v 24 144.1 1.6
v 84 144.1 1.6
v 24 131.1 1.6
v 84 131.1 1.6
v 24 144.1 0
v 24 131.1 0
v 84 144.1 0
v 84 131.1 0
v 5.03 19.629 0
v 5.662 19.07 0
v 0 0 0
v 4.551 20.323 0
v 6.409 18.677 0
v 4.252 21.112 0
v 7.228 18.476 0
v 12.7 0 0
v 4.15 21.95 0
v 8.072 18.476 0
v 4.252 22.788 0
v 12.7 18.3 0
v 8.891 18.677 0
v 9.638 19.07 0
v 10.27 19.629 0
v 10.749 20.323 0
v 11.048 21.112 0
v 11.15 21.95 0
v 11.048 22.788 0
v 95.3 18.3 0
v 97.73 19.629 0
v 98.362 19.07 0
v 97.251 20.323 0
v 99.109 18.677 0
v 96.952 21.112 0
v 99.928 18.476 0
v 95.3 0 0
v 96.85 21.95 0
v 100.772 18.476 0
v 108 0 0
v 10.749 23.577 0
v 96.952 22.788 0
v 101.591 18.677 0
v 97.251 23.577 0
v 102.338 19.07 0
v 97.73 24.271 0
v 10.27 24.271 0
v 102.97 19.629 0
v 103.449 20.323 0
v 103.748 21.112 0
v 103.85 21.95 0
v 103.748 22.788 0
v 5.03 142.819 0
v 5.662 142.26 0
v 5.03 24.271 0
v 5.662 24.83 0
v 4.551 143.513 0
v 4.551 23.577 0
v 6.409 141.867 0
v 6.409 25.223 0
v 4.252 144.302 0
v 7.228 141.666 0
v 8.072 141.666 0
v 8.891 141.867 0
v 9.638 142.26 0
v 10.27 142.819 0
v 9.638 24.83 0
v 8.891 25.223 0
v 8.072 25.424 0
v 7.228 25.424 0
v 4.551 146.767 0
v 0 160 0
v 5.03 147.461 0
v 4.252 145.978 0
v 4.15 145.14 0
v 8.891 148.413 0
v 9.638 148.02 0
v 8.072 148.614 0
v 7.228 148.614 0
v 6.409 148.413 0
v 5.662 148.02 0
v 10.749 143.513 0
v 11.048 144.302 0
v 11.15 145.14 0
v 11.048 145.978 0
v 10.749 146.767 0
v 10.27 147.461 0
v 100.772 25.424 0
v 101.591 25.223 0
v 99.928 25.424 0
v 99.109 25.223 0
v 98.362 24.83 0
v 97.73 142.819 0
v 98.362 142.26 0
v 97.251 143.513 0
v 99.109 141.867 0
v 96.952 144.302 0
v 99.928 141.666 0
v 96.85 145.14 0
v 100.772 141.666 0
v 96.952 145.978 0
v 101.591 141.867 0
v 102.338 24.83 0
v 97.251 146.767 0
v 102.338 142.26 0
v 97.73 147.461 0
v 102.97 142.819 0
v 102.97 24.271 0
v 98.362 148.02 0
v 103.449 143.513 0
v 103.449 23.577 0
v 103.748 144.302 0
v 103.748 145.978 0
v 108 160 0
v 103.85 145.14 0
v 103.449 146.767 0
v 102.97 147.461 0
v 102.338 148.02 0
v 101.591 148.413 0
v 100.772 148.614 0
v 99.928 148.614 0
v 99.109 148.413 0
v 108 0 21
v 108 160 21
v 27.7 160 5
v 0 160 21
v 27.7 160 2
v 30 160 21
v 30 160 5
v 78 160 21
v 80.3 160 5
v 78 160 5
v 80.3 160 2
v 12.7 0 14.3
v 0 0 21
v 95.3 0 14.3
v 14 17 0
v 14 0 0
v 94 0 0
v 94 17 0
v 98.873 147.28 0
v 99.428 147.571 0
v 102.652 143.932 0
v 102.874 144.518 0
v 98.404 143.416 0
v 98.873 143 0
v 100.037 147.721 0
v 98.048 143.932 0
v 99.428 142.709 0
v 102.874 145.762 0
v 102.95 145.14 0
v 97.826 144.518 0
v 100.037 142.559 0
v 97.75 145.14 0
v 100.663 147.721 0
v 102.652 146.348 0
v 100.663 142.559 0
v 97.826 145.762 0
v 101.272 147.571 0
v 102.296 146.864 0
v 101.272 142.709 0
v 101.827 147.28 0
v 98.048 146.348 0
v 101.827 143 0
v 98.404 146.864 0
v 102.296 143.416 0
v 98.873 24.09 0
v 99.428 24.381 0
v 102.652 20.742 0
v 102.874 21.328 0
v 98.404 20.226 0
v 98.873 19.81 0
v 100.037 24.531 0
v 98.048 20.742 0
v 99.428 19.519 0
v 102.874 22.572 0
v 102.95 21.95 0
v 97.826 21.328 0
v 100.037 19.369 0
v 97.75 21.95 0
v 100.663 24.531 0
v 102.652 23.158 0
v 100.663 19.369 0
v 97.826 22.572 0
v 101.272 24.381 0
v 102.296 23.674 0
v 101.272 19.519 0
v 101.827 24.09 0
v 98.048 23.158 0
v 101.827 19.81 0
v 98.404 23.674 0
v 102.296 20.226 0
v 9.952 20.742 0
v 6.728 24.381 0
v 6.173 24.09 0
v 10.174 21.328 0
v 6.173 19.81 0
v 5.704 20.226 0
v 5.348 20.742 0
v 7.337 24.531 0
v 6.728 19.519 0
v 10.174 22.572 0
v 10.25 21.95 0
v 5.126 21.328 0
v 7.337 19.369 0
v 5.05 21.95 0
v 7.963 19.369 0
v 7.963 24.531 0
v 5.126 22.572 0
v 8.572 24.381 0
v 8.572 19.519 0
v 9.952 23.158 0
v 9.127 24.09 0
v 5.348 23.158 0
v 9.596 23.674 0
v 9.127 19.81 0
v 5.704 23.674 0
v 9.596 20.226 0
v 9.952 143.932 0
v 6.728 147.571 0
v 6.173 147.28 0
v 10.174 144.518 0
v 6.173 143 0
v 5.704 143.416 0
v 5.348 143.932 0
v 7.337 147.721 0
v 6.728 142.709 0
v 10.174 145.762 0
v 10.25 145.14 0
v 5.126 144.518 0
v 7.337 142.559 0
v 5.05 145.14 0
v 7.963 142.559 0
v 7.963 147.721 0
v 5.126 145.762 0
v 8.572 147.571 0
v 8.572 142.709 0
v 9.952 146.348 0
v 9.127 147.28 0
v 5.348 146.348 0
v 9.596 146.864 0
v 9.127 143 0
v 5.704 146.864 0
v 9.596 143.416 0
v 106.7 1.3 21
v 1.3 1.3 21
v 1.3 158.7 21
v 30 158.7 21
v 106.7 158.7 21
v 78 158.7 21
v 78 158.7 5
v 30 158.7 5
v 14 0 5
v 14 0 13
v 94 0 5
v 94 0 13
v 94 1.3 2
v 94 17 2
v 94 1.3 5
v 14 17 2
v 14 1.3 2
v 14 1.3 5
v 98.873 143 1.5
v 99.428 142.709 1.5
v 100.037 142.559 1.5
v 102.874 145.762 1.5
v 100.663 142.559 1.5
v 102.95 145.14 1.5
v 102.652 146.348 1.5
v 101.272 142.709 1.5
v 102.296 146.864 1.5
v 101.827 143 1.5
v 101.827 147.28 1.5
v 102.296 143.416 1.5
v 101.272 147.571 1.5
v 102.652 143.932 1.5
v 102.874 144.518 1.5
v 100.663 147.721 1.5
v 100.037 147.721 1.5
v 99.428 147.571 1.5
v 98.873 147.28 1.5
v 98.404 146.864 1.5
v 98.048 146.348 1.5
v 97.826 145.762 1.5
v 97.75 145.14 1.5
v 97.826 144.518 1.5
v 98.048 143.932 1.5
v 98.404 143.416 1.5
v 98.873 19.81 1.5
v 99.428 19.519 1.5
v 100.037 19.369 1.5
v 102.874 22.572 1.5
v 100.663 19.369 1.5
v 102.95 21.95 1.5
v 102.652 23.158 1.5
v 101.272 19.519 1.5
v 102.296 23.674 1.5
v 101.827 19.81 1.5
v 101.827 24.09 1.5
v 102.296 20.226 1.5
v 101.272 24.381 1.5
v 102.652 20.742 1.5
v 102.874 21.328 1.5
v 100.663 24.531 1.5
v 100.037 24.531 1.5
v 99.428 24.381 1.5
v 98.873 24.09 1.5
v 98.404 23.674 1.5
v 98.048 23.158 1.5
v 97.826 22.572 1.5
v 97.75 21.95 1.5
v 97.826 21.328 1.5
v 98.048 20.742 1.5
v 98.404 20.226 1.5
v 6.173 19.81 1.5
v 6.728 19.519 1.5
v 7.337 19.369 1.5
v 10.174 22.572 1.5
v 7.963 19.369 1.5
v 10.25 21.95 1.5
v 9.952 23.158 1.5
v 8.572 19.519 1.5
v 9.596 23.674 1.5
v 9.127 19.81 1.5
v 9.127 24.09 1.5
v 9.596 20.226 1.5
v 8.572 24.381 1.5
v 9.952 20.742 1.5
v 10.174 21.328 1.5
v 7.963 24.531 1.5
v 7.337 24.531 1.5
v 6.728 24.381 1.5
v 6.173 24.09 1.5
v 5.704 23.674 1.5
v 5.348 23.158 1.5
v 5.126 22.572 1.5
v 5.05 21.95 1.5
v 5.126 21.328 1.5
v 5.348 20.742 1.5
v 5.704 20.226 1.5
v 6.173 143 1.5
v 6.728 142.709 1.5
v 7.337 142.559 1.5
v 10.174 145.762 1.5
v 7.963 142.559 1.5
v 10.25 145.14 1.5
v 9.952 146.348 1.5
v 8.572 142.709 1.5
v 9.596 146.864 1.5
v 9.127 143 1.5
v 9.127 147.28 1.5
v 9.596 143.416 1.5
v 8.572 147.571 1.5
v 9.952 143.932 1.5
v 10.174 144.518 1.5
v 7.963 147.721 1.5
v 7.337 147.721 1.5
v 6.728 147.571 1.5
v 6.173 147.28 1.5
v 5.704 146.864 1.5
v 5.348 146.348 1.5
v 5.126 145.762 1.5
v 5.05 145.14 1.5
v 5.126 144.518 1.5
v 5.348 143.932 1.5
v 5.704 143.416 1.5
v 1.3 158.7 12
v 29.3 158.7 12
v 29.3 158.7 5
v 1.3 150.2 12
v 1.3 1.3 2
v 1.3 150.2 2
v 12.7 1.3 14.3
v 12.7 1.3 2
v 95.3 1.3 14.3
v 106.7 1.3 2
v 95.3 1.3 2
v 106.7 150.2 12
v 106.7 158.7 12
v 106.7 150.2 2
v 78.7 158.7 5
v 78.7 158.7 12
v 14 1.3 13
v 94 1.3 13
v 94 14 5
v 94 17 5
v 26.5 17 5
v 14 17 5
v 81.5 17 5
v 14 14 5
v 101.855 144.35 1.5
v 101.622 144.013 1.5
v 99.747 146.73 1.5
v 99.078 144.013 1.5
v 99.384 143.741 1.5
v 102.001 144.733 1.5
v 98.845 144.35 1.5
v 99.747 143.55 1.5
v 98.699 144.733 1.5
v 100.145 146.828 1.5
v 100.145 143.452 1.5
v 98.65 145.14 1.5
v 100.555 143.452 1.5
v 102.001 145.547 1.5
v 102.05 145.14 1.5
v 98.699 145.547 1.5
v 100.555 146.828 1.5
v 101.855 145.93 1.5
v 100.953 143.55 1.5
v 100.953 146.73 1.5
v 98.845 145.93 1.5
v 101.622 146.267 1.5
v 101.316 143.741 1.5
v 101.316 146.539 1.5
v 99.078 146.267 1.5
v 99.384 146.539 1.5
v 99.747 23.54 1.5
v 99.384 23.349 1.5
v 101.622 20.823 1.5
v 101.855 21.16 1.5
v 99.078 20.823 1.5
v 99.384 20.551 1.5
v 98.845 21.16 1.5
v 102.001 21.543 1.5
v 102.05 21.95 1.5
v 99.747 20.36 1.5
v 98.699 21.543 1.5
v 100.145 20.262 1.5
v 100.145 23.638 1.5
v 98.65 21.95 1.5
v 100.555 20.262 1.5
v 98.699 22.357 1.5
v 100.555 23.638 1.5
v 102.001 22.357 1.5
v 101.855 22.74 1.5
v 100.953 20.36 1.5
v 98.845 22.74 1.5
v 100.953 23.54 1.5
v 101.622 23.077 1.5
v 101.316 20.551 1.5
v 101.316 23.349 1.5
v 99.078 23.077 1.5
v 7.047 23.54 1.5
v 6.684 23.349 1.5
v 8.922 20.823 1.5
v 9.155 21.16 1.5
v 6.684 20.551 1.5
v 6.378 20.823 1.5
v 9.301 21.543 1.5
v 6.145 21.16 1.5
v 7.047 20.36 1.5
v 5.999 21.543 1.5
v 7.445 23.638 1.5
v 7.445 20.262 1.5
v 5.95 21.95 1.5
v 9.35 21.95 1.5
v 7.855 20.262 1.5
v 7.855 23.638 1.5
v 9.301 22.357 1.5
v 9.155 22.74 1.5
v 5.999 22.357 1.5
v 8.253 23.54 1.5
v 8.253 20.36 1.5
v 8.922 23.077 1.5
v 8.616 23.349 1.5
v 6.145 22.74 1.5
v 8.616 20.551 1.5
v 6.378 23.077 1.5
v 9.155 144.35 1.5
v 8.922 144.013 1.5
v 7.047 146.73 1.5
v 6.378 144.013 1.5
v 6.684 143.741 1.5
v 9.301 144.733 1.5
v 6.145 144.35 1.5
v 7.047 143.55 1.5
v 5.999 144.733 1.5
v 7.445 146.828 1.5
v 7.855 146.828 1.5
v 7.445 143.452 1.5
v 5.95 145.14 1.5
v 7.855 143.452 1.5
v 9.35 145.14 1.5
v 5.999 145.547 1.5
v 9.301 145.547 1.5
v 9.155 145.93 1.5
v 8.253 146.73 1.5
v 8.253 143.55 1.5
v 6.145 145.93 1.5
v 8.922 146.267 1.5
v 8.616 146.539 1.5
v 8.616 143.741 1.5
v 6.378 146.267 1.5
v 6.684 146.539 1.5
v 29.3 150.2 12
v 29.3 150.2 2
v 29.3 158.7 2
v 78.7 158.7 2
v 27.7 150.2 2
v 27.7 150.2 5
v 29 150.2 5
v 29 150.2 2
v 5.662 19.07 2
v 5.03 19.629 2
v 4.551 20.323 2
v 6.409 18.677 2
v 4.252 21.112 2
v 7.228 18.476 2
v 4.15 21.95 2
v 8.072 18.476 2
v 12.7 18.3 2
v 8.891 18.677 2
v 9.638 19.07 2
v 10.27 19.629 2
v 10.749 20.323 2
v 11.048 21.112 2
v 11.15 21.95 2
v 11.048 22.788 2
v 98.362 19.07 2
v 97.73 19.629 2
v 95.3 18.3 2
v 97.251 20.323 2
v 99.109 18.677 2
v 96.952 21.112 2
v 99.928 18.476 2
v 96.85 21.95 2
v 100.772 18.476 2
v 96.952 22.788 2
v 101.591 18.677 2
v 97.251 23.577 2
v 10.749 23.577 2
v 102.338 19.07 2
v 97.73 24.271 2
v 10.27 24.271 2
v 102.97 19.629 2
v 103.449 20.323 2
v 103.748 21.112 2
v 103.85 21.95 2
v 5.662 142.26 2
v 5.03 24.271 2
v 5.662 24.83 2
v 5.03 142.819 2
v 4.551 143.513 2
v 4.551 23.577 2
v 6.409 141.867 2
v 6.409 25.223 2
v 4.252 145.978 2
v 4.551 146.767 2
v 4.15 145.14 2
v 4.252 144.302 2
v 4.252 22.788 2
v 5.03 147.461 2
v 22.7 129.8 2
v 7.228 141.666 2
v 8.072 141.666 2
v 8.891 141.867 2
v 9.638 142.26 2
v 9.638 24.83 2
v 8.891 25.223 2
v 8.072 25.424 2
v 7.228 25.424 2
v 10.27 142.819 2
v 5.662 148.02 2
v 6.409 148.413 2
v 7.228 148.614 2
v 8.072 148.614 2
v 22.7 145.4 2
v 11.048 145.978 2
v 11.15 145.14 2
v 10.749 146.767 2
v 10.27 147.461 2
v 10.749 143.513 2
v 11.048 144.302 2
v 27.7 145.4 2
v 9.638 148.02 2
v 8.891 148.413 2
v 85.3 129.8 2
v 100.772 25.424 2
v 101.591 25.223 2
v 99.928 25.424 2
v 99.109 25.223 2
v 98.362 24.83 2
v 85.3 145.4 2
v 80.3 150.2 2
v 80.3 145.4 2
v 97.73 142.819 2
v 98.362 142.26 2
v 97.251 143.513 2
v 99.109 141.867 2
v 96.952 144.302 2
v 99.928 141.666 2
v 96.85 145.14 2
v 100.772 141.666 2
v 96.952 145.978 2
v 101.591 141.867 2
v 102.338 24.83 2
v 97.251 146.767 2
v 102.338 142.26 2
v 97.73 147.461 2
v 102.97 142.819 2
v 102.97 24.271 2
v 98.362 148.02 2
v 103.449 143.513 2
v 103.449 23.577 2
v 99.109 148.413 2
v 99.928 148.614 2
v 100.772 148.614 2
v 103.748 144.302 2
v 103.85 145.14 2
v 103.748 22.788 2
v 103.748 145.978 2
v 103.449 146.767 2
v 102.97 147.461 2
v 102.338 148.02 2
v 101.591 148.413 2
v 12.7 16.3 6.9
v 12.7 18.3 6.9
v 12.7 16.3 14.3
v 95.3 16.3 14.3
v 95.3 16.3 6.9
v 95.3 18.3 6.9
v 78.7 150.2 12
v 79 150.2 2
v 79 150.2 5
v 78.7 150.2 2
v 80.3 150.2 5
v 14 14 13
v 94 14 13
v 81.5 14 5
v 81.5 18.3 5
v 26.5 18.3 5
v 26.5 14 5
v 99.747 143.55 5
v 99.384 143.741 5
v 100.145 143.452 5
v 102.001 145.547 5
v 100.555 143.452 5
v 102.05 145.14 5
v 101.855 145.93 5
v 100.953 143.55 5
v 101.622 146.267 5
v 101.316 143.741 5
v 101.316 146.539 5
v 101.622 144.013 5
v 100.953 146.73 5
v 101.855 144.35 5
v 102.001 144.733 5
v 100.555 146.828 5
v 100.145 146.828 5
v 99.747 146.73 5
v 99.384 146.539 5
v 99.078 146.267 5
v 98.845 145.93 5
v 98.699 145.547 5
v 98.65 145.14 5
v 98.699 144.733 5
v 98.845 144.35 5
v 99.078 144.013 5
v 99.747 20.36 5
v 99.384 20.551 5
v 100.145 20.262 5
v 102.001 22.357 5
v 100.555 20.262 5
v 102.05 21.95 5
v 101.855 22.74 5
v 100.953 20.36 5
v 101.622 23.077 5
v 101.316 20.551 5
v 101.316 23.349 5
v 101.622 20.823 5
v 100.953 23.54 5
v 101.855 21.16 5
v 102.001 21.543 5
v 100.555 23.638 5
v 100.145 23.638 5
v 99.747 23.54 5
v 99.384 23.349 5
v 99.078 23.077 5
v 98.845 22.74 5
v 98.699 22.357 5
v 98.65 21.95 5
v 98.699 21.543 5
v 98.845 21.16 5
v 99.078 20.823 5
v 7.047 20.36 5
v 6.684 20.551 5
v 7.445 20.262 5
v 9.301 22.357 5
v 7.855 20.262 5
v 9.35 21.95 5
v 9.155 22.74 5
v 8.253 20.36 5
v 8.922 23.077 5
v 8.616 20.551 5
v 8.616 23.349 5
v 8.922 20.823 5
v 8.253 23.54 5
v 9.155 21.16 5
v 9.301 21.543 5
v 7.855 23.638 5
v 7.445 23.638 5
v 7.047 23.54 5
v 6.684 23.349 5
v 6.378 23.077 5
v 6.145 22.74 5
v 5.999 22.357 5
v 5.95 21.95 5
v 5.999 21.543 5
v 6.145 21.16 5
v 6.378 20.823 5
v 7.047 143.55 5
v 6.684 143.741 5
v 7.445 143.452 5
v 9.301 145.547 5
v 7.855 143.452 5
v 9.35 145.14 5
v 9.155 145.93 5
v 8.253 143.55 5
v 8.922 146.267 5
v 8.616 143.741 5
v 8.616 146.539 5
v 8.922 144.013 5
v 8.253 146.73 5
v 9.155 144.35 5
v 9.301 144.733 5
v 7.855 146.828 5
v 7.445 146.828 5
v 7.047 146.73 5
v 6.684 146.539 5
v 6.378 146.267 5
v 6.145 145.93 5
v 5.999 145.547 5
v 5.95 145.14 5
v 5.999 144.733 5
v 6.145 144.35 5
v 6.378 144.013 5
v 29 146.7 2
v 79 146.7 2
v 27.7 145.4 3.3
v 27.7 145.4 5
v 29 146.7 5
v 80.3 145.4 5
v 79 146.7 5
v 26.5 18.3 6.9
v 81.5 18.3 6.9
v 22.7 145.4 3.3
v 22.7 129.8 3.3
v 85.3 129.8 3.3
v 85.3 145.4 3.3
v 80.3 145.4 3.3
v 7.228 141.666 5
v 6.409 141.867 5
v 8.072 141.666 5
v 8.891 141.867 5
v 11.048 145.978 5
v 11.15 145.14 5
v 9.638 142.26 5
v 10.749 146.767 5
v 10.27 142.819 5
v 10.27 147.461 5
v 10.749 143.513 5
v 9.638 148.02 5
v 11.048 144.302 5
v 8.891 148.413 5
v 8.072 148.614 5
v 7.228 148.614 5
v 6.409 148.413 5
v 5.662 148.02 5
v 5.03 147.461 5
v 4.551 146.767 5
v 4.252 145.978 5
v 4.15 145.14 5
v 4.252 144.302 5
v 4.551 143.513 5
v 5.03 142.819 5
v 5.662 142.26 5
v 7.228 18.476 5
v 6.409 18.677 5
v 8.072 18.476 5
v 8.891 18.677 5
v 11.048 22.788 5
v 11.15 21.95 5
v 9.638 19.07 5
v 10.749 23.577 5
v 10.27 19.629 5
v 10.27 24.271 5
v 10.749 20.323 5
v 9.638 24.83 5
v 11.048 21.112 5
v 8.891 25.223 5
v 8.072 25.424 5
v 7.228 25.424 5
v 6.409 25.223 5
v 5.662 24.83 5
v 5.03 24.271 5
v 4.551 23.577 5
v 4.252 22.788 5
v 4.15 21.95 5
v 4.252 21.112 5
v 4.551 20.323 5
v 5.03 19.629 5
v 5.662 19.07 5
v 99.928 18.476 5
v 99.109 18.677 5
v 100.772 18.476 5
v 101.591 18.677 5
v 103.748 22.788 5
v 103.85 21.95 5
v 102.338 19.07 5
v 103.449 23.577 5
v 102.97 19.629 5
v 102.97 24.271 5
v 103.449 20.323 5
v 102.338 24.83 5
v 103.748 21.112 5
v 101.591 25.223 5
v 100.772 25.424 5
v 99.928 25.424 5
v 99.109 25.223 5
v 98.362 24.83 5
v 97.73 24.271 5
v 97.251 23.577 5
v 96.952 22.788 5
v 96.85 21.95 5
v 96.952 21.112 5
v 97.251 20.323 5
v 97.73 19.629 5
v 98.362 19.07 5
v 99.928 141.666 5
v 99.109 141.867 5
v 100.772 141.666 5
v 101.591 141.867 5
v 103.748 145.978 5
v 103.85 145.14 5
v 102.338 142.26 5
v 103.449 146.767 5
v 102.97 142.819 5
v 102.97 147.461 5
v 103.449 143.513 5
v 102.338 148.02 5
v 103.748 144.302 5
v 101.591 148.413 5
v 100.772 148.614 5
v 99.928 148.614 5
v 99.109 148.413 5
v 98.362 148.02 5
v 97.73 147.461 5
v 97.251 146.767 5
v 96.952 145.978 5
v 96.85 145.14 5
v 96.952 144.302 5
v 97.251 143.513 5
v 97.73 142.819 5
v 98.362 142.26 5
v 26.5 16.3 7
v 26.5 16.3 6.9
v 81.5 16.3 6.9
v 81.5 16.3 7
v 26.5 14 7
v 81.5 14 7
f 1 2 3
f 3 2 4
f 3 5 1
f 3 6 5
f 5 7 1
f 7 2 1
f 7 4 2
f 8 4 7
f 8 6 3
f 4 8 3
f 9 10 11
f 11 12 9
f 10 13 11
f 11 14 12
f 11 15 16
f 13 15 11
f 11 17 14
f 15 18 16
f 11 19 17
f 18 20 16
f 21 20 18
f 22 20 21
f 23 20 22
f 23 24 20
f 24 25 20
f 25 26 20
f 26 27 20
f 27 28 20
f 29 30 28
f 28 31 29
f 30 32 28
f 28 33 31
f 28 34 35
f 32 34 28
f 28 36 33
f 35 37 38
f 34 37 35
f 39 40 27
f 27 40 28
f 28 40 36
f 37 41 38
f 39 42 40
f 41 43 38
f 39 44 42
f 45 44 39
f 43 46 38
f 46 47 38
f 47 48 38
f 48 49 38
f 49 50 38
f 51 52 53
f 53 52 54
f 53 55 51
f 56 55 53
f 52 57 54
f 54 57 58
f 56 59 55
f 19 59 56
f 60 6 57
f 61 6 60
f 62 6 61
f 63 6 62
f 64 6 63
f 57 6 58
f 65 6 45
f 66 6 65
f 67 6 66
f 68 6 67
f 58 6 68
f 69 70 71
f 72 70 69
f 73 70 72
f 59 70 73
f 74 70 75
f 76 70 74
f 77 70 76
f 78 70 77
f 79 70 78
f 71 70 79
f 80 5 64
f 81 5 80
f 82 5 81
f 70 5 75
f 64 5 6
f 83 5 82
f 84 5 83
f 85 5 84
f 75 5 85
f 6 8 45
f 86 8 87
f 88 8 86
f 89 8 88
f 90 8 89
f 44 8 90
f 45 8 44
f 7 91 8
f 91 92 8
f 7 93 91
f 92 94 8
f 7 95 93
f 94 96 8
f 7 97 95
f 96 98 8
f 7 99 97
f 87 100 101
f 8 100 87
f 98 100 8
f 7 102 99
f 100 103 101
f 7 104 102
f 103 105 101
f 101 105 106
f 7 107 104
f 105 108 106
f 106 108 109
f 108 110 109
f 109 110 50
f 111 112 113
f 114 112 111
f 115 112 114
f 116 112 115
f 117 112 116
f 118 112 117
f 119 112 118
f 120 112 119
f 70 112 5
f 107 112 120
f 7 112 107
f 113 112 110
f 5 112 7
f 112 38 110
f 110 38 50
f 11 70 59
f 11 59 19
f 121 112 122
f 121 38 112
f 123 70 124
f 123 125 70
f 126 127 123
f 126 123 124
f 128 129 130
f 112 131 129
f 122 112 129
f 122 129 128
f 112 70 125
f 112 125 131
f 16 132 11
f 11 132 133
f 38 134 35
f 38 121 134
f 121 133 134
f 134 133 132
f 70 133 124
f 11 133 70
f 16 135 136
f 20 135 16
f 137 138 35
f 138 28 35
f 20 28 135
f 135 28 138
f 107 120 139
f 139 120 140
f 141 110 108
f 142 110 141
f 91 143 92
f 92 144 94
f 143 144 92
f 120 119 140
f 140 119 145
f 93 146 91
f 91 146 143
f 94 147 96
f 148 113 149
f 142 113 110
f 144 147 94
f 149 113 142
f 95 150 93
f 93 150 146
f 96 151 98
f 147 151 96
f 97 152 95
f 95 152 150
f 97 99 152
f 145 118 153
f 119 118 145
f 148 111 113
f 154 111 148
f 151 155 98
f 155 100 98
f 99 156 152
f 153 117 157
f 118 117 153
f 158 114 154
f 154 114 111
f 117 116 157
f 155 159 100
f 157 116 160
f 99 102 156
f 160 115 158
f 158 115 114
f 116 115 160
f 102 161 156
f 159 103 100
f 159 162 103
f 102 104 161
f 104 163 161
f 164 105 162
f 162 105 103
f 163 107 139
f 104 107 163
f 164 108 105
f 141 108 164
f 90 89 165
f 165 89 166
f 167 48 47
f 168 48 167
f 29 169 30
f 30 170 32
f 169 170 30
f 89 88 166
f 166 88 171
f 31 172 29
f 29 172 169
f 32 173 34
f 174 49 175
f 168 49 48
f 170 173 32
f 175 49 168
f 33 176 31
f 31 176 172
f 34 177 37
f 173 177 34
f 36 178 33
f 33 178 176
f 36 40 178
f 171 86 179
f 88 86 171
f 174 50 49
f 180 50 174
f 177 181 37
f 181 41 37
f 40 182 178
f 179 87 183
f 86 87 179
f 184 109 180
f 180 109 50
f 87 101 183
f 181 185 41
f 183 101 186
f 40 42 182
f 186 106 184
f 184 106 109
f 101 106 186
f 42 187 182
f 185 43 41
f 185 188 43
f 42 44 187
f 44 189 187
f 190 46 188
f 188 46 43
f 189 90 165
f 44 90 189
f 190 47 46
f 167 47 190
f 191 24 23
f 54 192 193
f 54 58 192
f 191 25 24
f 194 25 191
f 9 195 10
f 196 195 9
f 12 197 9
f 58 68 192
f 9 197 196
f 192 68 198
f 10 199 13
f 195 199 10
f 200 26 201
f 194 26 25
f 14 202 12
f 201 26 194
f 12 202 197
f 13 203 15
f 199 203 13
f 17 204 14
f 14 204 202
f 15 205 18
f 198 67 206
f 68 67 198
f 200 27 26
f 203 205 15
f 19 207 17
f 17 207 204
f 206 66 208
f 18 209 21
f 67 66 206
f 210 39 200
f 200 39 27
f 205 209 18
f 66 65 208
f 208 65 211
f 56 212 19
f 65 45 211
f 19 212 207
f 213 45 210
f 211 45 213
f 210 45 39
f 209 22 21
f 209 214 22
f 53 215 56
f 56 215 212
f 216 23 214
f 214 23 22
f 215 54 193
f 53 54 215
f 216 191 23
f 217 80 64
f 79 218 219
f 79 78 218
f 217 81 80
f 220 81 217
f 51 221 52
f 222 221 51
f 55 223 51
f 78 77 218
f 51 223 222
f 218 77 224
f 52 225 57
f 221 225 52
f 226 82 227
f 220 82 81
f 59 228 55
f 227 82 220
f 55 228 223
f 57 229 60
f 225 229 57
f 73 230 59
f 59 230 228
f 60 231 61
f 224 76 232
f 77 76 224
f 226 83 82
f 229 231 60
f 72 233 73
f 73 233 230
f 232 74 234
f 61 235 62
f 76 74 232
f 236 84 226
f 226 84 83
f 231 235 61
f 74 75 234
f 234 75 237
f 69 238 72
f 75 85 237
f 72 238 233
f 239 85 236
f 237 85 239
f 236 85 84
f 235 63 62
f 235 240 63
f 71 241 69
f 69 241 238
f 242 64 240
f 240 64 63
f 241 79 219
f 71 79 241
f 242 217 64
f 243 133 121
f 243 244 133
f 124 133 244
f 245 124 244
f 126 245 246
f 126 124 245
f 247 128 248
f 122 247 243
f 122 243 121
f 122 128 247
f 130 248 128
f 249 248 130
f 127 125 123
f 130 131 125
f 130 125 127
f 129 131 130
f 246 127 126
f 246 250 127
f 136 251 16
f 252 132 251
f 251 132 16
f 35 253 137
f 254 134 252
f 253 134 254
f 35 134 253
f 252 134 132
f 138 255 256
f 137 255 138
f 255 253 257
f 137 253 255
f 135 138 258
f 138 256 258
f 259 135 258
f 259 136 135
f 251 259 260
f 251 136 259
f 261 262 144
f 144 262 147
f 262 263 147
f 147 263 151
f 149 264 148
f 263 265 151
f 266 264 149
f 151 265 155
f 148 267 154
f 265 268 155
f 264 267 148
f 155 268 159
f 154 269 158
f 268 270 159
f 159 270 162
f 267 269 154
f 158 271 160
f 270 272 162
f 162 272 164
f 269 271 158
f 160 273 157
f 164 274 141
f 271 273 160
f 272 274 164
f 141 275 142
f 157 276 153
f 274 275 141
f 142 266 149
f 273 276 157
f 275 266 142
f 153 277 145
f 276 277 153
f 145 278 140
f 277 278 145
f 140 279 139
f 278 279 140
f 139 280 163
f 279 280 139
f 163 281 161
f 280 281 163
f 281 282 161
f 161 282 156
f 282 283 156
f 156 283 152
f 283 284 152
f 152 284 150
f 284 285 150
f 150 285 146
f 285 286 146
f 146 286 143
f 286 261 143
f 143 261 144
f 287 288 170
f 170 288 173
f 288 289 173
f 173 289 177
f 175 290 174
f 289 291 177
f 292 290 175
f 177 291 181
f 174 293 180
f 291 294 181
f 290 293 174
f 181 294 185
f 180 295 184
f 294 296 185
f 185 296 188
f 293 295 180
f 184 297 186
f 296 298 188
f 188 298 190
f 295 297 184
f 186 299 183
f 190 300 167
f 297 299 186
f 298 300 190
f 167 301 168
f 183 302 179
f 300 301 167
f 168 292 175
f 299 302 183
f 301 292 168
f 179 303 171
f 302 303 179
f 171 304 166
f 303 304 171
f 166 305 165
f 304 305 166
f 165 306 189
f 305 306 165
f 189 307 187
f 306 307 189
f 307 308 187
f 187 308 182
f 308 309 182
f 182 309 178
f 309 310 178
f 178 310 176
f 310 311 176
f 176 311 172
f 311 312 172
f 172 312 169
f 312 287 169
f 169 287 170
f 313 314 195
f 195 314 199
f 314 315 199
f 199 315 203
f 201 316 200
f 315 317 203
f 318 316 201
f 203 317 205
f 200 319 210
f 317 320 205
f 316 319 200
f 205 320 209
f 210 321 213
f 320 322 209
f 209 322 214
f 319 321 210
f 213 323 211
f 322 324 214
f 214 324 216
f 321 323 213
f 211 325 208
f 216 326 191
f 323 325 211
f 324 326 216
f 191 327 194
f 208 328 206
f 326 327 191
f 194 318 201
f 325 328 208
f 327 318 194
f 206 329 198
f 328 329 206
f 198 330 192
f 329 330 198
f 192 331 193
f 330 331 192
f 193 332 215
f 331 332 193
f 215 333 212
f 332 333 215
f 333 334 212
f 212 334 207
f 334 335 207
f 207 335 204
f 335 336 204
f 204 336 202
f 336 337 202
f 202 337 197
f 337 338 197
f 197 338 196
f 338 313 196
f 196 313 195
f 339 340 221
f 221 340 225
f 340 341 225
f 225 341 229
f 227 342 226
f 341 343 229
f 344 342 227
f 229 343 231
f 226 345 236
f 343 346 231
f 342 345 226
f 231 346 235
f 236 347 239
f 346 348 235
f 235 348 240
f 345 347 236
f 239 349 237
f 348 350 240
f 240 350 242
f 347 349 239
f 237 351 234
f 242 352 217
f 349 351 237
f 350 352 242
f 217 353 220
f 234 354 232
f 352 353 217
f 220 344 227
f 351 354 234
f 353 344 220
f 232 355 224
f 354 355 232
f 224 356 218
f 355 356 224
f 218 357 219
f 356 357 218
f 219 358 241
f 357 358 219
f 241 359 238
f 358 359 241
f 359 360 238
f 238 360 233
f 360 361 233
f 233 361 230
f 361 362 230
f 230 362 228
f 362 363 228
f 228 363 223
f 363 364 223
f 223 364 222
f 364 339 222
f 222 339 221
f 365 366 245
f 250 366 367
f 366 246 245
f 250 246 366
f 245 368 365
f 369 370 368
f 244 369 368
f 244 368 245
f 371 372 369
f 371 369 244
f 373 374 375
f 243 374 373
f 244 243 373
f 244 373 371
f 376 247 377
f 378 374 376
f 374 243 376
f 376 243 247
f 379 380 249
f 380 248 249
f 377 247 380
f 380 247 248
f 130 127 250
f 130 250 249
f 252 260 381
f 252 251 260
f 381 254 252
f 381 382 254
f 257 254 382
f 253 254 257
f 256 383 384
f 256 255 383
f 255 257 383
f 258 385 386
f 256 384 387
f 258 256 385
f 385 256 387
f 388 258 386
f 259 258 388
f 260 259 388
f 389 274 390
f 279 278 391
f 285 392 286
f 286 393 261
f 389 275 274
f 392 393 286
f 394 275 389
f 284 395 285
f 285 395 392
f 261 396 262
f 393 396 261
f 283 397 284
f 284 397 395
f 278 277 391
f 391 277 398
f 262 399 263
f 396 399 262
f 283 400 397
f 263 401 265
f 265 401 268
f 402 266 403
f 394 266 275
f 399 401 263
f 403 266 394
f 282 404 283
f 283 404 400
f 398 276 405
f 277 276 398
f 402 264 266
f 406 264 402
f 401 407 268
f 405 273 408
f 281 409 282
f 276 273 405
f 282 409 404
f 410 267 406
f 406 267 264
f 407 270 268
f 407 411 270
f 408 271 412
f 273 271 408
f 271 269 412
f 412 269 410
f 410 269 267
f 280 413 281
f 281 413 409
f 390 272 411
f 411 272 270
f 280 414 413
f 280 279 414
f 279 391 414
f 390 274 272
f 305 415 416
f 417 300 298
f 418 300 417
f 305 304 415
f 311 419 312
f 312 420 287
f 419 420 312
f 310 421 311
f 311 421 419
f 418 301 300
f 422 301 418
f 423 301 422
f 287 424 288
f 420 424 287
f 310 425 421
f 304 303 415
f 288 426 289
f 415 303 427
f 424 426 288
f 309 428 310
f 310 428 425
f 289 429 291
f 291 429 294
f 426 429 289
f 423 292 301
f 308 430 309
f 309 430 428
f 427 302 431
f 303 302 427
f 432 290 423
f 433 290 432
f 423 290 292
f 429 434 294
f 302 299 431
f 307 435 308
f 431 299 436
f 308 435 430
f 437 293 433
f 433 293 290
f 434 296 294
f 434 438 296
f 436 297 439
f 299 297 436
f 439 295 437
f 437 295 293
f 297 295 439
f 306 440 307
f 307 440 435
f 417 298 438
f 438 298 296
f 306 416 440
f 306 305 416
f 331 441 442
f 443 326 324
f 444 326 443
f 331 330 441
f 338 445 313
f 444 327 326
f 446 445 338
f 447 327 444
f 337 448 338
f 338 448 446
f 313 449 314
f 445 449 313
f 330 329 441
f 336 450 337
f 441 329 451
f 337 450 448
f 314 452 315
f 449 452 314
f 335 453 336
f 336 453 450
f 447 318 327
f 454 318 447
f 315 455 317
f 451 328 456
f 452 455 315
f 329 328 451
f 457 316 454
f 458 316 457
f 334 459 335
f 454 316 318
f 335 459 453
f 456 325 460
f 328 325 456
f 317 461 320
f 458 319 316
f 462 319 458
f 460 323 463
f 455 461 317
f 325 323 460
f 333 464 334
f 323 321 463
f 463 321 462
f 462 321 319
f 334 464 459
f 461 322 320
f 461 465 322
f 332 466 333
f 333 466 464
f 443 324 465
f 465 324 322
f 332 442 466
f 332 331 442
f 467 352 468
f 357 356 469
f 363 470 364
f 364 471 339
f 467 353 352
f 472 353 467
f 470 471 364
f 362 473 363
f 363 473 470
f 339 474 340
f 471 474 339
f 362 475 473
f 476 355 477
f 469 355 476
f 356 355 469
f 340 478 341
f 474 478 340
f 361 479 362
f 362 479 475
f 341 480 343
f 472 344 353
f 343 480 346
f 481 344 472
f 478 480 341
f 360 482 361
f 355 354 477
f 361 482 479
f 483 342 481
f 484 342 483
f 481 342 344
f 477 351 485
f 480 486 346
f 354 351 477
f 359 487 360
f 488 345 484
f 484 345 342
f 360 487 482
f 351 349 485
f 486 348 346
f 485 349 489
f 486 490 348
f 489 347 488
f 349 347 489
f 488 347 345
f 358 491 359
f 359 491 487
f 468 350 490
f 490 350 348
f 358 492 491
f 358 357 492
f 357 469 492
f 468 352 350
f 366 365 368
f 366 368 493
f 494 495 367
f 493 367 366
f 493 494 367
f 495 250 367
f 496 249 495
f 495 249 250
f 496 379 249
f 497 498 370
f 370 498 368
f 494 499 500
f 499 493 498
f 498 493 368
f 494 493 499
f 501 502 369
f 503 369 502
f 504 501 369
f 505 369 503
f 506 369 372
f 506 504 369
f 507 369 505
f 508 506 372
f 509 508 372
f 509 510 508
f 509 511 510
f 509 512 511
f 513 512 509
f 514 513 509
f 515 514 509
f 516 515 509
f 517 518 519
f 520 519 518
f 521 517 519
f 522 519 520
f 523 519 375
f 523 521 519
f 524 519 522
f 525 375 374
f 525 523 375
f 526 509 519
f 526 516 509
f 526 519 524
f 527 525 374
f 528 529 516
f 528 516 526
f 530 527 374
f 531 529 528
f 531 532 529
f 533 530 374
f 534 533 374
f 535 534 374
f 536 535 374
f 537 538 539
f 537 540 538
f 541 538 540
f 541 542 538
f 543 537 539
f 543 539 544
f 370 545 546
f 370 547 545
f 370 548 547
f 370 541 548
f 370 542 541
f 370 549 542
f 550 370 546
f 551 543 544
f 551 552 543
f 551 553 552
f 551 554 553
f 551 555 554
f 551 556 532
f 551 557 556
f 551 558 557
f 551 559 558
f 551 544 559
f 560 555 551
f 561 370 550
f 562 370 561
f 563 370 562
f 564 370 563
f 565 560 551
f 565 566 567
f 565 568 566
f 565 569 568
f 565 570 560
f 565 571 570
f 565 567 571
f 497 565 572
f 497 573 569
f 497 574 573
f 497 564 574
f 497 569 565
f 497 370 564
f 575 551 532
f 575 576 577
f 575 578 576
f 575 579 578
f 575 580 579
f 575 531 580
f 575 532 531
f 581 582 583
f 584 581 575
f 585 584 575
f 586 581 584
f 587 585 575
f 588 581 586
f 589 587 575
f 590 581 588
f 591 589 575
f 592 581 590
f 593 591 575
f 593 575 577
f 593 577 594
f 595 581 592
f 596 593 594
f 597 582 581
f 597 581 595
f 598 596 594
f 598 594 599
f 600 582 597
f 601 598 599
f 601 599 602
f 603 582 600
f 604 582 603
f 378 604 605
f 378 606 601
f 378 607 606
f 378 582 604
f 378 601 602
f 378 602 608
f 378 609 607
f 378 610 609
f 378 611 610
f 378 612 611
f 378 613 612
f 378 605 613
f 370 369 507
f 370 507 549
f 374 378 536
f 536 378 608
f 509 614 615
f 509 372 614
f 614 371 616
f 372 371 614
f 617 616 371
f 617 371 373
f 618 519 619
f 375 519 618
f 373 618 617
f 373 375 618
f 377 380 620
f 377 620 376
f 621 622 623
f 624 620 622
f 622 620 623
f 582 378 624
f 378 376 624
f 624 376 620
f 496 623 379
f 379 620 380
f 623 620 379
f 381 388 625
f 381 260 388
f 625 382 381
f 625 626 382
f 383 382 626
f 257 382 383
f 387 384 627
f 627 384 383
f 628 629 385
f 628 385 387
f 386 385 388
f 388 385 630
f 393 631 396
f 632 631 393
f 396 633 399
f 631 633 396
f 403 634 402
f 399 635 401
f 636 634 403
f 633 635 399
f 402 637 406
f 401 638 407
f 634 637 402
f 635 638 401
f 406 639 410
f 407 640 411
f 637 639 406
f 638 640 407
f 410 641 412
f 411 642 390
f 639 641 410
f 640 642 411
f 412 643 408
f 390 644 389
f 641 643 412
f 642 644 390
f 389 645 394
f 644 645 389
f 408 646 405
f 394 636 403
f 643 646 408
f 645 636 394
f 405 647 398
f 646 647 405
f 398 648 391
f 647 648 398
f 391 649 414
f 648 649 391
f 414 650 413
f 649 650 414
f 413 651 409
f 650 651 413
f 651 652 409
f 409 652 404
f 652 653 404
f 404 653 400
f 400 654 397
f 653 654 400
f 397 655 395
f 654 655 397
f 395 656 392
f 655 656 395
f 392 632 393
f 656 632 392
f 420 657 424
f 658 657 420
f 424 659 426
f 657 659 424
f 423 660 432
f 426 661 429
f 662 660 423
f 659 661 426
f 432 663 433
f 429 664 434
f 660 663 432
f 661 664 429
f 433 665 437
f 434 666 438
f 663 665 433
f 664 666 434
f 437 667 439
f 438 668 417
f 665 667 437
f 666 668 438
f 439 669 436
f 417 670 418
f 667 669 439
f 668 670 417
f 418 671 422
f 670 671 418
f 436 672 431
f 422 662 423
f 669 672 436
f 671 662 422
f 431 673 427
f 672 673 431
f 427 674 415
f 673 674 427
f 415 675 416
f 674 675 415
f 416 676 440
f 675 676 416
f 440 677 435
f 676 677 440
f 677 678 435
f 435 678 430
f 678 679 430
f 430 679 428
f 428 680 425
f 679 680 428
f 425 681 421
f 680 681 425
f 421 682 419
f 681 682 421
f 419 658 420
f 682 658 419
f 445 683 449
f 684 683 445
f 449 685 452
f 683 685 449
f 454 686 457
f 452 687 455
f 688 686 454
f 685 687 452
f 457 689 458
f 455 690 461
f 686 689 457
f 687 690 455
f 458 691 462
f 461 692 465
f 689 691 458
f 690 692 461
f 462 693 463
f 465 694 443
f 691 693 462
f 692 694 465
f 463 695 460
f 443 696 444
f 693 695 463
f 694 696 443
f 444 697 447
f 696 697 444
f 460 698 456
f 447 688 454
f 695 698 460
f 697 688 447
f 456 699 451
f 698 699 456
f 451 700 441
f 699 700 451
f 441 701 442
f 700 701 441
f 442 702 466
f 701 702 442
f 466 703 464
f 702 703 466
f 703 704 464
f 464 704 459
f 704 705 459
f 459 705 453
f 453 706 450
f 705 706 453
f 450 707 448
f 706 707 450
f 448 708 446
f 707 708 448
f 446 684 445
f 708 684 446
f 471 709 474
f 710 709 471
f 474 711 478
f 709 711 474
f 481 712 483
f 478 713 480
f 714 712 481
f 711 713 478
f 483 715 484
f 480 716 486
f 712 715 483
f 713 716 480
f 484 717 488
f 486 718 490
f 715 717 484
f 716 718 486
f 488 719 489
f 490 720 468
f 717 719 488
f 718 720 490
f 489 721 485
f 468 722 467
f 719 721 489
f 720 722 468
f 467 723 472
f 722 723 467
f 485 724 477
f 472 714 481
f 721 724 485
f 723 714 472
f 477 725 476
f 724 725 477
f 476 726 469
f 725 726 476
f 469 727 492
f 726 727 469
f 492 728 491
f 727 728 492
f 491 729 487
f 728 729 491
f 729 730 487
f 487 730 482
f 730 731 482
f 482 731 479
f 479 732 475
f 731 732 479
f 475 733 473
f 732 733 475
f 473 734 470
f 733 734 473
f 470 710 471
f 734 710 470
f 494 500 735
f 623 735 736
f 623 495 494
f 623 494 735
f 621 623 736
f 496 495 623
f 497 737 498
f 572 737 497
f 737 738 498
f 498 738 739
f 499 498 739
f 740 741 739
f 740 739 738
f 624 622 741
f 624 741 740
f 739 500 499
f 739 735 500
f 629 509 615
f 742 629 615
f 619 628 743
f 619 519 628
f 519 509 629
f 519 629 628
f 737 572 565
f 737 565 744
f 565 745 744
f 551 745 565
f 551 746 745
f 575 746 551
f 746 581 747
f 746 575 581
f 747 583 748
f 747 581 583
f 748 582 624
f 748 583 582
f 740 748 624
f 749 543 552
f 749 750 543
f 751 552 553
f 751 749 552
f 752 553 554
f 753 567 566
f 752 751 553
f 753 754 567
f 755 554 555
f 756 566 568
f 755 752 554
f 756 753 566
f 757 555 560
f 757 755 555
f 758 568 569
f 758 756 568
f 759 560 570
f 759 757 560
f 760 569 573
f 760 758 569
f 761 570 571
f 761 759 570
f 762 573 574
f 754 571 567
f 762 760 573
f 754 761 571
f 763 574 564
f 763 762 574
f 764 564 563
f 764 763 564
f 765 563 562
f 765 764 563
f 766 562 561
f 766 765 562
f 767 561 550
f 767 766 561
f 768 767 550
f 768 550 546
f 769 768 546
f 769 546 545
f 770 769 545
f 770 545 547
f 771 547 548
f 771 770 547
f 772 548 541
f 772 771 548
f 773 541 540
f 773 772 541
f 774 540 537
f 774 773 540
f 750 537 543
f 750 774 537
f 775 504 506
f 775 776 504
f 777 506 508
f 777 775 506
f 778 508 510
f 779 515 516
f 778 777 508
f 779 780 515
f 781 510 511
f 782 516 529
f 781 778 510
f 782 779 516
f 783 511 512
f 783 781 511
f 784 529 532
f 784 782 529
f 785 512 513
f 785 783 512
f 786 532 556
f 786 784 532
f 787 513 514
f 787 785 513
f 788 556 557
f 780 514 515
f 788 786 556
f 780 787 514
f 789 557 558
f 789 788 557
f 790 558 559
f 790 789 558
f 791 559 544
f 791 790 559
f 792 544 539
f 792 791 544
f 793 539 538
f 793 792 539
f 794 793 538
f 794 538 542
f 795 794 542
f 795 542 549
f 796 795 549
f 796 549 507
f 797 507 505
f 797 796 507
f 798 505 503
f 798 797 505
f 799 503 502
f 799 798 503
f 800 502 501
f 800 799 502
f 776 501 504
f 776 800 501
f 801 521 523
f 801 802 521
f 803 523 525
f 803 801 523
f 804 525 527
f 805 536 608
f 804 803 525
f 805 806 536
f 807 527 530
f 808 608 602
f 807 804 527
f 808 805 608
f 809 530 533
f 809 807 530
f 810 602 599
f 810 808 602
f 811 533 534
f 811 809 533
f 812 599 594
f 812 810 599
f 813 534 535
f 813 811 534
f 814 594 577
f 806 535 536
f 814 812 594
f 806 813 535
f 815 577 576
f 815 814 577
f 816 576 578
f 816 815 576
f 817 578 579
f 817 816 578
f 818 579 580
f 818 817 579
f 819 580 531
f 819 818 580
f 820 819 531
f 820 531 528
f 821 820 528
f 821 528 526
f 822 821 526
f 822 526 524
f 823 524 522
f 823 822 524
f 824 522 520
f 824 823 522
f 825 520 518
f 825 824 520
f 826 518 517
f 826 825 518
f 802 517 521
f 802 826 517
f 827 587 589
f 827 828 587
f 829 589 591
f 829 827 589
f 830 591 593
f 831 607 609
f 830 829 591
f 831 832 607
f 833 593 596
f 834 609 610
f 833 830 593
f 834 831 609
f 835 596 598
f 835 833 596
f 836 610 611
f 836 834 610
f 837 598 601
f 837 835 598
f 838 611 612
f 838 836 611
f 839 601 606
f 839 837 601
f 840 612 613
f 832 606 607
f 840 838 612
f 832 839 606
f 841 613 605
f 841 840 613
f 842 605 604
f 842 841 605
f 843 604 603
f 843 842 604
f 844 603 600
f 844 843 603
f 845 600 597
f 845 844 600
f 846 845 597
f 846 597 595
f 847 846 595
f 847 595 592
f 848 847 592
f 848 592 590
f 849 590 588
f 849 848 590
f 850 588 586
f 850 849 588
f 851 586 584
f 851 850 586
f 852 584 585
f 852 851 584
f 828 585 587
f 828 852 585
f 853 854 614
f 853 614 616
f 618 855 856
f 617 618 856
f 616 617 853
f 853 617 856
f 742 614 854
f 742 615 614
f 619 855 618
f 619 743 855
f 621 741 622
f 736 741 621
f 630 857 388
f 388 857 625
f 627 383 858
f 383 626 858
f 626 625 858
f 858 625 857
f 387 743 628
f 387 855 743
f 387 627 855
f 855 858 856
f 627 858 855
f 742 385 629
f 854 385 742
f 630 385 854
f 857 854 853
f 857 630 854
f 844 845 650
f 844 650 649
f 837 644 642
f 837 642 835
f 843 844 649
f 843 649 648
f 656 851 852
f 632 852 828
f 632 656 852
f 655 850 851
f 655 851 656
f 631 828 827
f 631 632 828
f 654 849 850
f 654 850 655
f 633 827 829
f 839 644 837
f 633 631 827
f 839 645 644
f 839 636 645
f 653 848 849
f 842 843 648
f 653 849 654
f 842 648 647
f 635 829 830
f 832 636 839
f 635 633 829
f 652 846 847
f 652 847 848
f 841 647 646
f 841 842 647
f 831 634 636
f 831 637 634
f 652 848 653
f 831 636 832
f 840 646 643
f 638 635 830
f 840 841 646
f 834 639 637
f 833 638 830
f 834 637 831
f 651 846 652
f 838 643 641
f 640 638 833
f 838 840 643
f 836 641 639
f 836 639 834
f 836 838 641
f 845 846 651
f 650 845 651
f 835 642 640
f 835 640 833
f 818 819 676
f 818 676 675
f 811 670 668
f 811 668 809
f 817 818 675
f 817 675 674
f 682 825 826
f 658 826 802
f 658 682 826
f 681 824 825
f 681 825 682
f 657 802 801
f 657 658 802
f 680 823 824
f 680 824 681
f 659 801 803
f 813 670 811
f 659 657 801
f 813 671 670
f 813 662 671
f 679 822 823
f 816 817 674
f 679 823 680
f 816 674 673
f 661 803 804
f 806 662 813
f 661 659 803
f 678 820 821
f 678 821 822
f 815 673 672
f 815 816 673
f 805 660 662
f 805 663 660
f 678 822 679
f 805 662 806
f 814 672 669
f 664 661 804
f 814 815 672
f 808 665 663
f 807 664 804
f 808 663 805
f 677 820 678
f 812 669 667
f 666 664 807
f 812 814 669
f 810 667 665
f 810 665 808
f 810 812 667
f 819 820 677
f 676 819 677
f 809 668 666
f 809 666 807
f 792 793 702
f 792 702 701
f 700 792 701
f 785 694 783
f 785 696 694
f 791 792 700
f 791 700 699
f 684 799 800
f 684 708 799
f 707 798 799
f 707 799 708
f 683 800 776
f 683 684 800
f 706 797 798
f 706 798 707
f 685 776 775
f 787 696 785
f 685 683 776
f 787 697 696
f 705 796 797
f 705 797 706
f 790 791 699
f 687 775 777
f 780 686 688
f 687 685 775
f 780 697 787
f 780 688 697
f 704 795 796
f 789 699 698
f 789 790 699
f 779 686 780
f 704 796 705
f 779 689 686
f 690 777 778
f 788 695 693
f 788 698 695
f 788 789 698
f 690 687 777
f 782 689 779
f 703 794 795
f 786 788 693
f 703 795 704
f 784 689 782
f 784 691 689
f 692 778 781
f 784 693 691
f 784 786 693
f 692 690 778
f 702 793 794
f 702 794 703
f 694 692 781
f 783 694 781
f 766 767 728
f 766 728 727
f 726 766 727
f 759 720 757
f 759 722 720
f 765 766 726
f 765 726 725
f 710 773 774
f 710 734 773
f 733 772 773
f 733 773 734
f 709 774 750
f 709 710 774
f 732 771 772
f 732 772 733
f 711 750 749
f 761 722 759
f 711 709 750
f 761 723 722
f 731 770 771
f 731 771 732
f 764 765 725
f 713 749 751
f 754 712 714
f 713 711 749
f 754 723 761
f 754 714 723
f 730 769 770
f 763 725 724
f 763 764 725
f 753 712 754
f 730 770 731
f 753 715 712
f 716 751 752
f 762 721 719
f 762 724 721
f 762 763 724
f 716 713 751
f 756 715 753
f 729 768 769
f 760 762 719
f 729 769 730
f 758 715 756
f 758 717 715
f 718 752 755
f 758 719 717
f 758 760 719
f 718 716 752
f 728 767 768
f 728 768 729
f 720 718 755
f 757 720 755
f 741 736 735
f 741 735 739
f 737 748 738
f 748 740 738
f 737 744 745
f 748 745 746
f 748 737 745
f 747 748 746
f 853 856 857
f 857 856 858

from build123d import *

# Parameters (mm, degrees)
BOX015_W          = 28
BOX015_H          = 8.5
BOX015_DEPTH      = 10
BOX016_W          = 28
BOX016_H          = 8.5
BOX016_DEPTH      = 10
BOX014_W          = 50
BOX014_H          = 12
BOX014_DEPTH      = 3
BOX013_W          = 52.6
BOX013_H          = 14.6
BOX013_DEPTH      = 3
CYLINDER006_R     = 2.6
CYLINDER006_DEPTH = 1.5
CYLINDER005_R     = 1.7
CYLINDER005_DEPTH = 5
CYLINDER_R        = 3.5
CYLINDER_DEPTH    = 5
CYLINDER001_R     = 3.5
CYLINDER001_DEPTH = 5
CYLINDER002_R     = 3.5
CYLINDER002_DEPTH = 5
CYLINDER003_R     = 3.5
CYLINDER003_DEPTH = 5
BOX012_W          = 48
BOX012_H          = 1.3
BOX012_DEPTH      = 16
BOX008_W          = 60
BOX008_H          = 13
BOX008_DEPTH      = 1.6
BOX002_W          = 80
BOX002_H          = 17
BOX002_DEPTH      = 13
BOX001_W          = 105.4
BOX001_H          = 157.4
BOX001_DEPTH      = 19
BOX_W             = 108
BOX_H             = 160
BOX_DEPTH         = 21
BOX007_W          = 55
BOX007_H          = 4.5
BOX007_DEPTH      = 2
BOX006_W          = 82.6
BOX006_H          = 2
BOX006_DEPTH      = 7.4
BOX005_W          = 80
BOX005_H          = 14
BOX005_DEPTH      = 8
BOX004_W          = 80
BOX004_H          = 17
BOX004_DEPTH      = 5
BOX003_W          = 82.6
BOX003_H          = 18.3
BOX003_DEPTH      = 14.3
BOX009_W          = 62.6
BOX009_H          = 15.6
BOX009_DEPTH      = 1.7


with BuildPart() as board_pusher_left:
    # Box015 → Box015 (new body)
    with BuildSketch(Plane(origin=(1.3, 150.2, 2), x_dir=(1, 0, 0), z_dir=(0, 0, 1))):
        with Locations((14, 4.25)):
            Rectangle(BOX015_W, BOX015_H)
    extrude(amount=BOX015_DEPTH)


with BuildPart() as board_pusher_right:
    # Box016 → Box016 (new body)
    with BuildSketch(Plane(origin=(78.7, 150.2, 2), x_dir=(1, 0, 0), z_dir=(0, 0, 1))):
        with Locations((14, 4.25)):
            Rectangle(BOX016_W, BOX016_H)
    extrude(amount=BOX016_DEPTH)


with BuildPart() as board_support_inner:
    # Box014 → Box014 (new body)
    with BuildSketch(Plane(origin=(29, 146.7, 2), x_dir=(1, 0, 0), z_dir=(0, 0, 1))):
        with Locations((25, 6)):
            Rectangle(BOX014_W, BOX014_H)
    extrude(amount=BOX014_DEPTH)


with BuildPart() as board_support:
    # Box013 → Box013 (new body)
    with BuildSketch(Plane(origin=(27.7, 145.4, 2), x_dir=(1, 0, 0), z_dir=(0, 0, 1))):
        with Locations((26.3, 7.3)):
            Rectangle(BOX013_W, BOX013_H)
    extrude(amount=BOX013_DEPTH)

    # Cut008: cut Board support inner
    add(board_support_inner.part, mode=Mode.SUBTRACT)


with BuildPart() as bottom_hole:
    # Cylinder006 → Cylinder006 (new body)
    with BuildSketch(Plane(origin=(7.65, 145.14, 0), x_dir=(1, 0, 0), z_dir=(0, 0, 1))):
        Circle(CYLINDER006_R)
    extrude(amount=CYLINDER006_DEPTH)


with BuildPart() as hole1:
    # Cylinder005 → Cylinder005 (new body)
    with BuildSketch(Plane(origin=(7.65, 145.14, 0), x_dir=(1, 0, 0), z_dir=(0, 0, 1))):
        Circle(CYLINDER005_R)
    extrude(amount=CYLINDER005_DEPTH)

    # Fusion003: union Bottom hole
    add(bottom_hole.part)


with BuildPart() as hole2:
    # Clone base: copy of Hole1
    add(hole1.part)


with BuildPart() as hole2_1:
    # Clone placement: moved
    add(hole2.part.moved(Location((92.7, 0, 0))))


with BuildPart() as hole3:
    # Clone001 base: copy of Hole2
    add(hole2_1.part)


with BuildPart() as hole3_1:
    # Clone001 placement: moved
    add(hole3.part.moved(Location((-92.7, -123.19, 0))))


with BuildPart() as hole4:
    # Clone002 base: copy of Hole3
    add(hole3_1.part)


with BuildPart() as hole4_1:
    # Clone002 placement: moved
    add(hole4.part.moved(Location((92.7, 0, 0))))


with BuildPart() as holes:
    # Fusion004 base: copy of Hole1
    add(hole1.part)

    # Fusion004: union Hole4, Hole3, Hole2
    add(hole4_1.part)
    add(hole3_1.part)
    add(hole2_1.part)


with BuildPart() as cylinder:
    # Cylinder → Cylinder (new body)
    with BuildSketch(Plane(origin=(7.65, 145.14, 0), x_dir=(1, 0, 0), z_dir=(0, 0, 1))):
        Circle(CYLINDER_R)
    extrude(amount=CYLINDER_DEPTH)


with BuildPart() as cylinder001:
    # Cylinder001 → Cylinder001 (new body)
    with BuildSketch(Plane(origin=(100.35, 145.14, 0), x_dir=(1, 0, 0), z_dir=(0, 0, 1))):
        Circle(CYLINDER001_R)
    extrude(amount=CYLINDER001_DEPTH)


with BuildPart() as cylinder002:
    # Cylinder002 → Cylinder002 (new body)
    with BuildSketch(Plane(origin=(7.65, 21.95, 0), x_dir=(1, 0, 0), z_dir=(0, 0, 1))):
        Circle(CYLINDER002_R)
    extrude(amount=CYLINDER002_DEPTH)


with BuildPart() as cylinder003:
    # Cylinder003 → Cylinder003 (new body)
    with BuildSketch(Plane(origin=(100.35, 21.95, 0), x_dir=(1, 0, 0), z_dir=(0, 0, 1))):
        Circle(CYLINDER003_R)
    extrude(amount=CYLINDER003_DEPTH)


with BuildPart() as sdcard_cutout:
    # Box012 → Box012 (new body)
    with BuildSketch(Plane(origin=(30, 158.7, 5), x_dir=(1, 0, 0), z_dir=(0, 0, 1))):
        with Locations((24, 0.65)):
            Rectangle(BOX012_W, BOX012_H)
    extrude(amount=BOX012_DEPTH)


with BuildPart() as bottom_cutout:
    # Box008 → Box008 (new body)
    with BuildSketch(Plane(origin=(24, 131.1, 0), x_dir=(1, 0, 0), z_dir=(0, 0, 1))):
        with Locations((30, 6.5)):
            Rectangle(BOX008_W, BOX008_H)
    extrude(amount=BOX008_DEPTH)


with BuildPart() as cube002:
    # Box002 → Box002 (new body)
    with BuildSketch(Plane(origin=(14, 0, 0), x_dir=(1, 0, 0), z_dir=(0, 0, 1))):
        with Locations((40, 8.5)):
            Rectangle(BOX002_W, BOX002_H)
    extrude(amount=BOX002_DEPTH)


with BuildPart() as cube001:
    # Box001 → Box001 (new body)
    with BuildSketch(Plane(origin=(1.3, 1.3, 2), x_dir=(1, 0, 0), z_dir=(0, 0, 1))):
        with Locations((52.7, 78.7)):
            Rectangle(BOX001_W, BOX001_H)
    extrude(amount=BOX001_DEPTH)


with BuildPart() as cartridge_appature_cutout:
    # Box → Box (new body)
    with BuildSketch(Plane.XY):
        with Locations((54, 80)):
            Rectangle(BOX_W, BOX_H)
    extrude(amount=BOX_DEPTH)

    # Cut: cut Cube001
    add(cube001.part, mode=Mode.SUBTRACT)

    # Cut001: cut Cube002
    add(cube002.part, mode=Mode.SUBTRACT)


with BuildPart() as board_carve:
    # Box007 → Box007 (new body)
    with BuildSketch(Plane(origin=(26.5, 14, 5), x_dir=(1, 0, 0), z_dir=(0, 0, 1))):
        with Locations((27.5, 2.25)):
            Rectangle(BOX007_W, BOX007_H)
    extrude(amount=BOX007_DEPTH)


with BuildPart() as appature_top_inside_carve:
    # Box006 → Box006 (new body)
    with BuildSketch(Plane(origin=(12.7, 16.3, 6.9), x_dir=(1, 0, 0), z_dir=(0, 0, 1))):
        with Locations((41.3, 1)):
            Rectangle(BOX006_W, BOX006_H)
    extrude(amount=BOX006_DEPTH)


with BuildPart() as appature_top_outside_carve:
    # Box005 → Box005 (new body)
    with BuildSketch(Plane(origin=(14, 0, 5), x_dir=(1, 0, 0), z_dir=(0, 0, 1))):
        with Locations((40, 7)):
            Rectangle(BOX005_W, BOX005_H)
    extrude(amount=BOX005_DEPTH)


with BuildPart() as appature_bottom_outside_carve:
    # Box004 → Box004 (new body)
    with BuildSketch(Plane(origin=(14, 0, 0), x_dir=(1, 0, 0), z_dir=(0, 0, 1))):
        with Locations((40, 8.5)):
            Rectangle(BOX004_W, BOX004_H)
    extrude(amount=BOX004_DEPTH)


with BuildPart() as board_with_holes:
    # Box003 → Box003 (new body)
    with BuildSketch(Plane(origin=(12.7, 0, 0), x_dir=(1, 0, 0), z_dir=(0, 0, 1))):
        with Locations((41.3, 9.15)):
            Rectangle(BOX003_W, BOX003_H)
    extrude(amount=BOX003_DEPTH)

    # Cut002: cut Appature bottom outside carve
    add(appature_bottom_outside_carve.part, mode=Mode.SUBTRACT)

    # Cut003: cut Appature top outside carve
    add(appature_top_outside_carve.part, mode=Mode.SUBTRACT)

    # Cut004: cut Appature top inside carve
    add(appature_top_inside_carve.part, mode=Mode.SUBTRACT)

    # Cut005: cut Board carve
    add(board_carve.part, mode=Mode.SUBTRACT)

    # Fusion: union Cartridge appature cutout
    add(cartridge_appature_cutout.part)

    # Cut006: cut Bottom cutout
    add(bottom_cutout.part, mode=Mode.SUBTRACT)

    # Cut007: cut SDCard cutout
    add(sdcard_cutout.part, mode=Mode.SUBTRACT)

    # Fusion002: union Cylinder, Cylinder001, Cylinder002, Cylinder003
    add(cylinder.part)
    add(cylinder001.part)
    add(cylinder002.part)
    add(cylinder003.part)

    # Cut009: cut Holes
    add(holes.part, mode=Mode.SUBTRACT)


with BuildPart() as all_case_parts:
    # Box009 → Box009 (new body)
    with BuildSketch(Plane(origin=(22.7, 129.8, 1.6), x_dir=(1, 0, 0), z_dir=(0, 0, 1))):
        with Locations((31.3, 7.8)):
            Rectangle(BOX009_W, BOX009_H)
    extrude(amount=BOX009_DEPTH)

    # Fusion005: union Board pusher left, Board pusher right, Board Support, Board with holes
    add(board_pusher_left.part)
    add(board_pusher_right.part)
    add(board_support.part)
    add(board_with_holes.part)


solid = all_case_parts.part
